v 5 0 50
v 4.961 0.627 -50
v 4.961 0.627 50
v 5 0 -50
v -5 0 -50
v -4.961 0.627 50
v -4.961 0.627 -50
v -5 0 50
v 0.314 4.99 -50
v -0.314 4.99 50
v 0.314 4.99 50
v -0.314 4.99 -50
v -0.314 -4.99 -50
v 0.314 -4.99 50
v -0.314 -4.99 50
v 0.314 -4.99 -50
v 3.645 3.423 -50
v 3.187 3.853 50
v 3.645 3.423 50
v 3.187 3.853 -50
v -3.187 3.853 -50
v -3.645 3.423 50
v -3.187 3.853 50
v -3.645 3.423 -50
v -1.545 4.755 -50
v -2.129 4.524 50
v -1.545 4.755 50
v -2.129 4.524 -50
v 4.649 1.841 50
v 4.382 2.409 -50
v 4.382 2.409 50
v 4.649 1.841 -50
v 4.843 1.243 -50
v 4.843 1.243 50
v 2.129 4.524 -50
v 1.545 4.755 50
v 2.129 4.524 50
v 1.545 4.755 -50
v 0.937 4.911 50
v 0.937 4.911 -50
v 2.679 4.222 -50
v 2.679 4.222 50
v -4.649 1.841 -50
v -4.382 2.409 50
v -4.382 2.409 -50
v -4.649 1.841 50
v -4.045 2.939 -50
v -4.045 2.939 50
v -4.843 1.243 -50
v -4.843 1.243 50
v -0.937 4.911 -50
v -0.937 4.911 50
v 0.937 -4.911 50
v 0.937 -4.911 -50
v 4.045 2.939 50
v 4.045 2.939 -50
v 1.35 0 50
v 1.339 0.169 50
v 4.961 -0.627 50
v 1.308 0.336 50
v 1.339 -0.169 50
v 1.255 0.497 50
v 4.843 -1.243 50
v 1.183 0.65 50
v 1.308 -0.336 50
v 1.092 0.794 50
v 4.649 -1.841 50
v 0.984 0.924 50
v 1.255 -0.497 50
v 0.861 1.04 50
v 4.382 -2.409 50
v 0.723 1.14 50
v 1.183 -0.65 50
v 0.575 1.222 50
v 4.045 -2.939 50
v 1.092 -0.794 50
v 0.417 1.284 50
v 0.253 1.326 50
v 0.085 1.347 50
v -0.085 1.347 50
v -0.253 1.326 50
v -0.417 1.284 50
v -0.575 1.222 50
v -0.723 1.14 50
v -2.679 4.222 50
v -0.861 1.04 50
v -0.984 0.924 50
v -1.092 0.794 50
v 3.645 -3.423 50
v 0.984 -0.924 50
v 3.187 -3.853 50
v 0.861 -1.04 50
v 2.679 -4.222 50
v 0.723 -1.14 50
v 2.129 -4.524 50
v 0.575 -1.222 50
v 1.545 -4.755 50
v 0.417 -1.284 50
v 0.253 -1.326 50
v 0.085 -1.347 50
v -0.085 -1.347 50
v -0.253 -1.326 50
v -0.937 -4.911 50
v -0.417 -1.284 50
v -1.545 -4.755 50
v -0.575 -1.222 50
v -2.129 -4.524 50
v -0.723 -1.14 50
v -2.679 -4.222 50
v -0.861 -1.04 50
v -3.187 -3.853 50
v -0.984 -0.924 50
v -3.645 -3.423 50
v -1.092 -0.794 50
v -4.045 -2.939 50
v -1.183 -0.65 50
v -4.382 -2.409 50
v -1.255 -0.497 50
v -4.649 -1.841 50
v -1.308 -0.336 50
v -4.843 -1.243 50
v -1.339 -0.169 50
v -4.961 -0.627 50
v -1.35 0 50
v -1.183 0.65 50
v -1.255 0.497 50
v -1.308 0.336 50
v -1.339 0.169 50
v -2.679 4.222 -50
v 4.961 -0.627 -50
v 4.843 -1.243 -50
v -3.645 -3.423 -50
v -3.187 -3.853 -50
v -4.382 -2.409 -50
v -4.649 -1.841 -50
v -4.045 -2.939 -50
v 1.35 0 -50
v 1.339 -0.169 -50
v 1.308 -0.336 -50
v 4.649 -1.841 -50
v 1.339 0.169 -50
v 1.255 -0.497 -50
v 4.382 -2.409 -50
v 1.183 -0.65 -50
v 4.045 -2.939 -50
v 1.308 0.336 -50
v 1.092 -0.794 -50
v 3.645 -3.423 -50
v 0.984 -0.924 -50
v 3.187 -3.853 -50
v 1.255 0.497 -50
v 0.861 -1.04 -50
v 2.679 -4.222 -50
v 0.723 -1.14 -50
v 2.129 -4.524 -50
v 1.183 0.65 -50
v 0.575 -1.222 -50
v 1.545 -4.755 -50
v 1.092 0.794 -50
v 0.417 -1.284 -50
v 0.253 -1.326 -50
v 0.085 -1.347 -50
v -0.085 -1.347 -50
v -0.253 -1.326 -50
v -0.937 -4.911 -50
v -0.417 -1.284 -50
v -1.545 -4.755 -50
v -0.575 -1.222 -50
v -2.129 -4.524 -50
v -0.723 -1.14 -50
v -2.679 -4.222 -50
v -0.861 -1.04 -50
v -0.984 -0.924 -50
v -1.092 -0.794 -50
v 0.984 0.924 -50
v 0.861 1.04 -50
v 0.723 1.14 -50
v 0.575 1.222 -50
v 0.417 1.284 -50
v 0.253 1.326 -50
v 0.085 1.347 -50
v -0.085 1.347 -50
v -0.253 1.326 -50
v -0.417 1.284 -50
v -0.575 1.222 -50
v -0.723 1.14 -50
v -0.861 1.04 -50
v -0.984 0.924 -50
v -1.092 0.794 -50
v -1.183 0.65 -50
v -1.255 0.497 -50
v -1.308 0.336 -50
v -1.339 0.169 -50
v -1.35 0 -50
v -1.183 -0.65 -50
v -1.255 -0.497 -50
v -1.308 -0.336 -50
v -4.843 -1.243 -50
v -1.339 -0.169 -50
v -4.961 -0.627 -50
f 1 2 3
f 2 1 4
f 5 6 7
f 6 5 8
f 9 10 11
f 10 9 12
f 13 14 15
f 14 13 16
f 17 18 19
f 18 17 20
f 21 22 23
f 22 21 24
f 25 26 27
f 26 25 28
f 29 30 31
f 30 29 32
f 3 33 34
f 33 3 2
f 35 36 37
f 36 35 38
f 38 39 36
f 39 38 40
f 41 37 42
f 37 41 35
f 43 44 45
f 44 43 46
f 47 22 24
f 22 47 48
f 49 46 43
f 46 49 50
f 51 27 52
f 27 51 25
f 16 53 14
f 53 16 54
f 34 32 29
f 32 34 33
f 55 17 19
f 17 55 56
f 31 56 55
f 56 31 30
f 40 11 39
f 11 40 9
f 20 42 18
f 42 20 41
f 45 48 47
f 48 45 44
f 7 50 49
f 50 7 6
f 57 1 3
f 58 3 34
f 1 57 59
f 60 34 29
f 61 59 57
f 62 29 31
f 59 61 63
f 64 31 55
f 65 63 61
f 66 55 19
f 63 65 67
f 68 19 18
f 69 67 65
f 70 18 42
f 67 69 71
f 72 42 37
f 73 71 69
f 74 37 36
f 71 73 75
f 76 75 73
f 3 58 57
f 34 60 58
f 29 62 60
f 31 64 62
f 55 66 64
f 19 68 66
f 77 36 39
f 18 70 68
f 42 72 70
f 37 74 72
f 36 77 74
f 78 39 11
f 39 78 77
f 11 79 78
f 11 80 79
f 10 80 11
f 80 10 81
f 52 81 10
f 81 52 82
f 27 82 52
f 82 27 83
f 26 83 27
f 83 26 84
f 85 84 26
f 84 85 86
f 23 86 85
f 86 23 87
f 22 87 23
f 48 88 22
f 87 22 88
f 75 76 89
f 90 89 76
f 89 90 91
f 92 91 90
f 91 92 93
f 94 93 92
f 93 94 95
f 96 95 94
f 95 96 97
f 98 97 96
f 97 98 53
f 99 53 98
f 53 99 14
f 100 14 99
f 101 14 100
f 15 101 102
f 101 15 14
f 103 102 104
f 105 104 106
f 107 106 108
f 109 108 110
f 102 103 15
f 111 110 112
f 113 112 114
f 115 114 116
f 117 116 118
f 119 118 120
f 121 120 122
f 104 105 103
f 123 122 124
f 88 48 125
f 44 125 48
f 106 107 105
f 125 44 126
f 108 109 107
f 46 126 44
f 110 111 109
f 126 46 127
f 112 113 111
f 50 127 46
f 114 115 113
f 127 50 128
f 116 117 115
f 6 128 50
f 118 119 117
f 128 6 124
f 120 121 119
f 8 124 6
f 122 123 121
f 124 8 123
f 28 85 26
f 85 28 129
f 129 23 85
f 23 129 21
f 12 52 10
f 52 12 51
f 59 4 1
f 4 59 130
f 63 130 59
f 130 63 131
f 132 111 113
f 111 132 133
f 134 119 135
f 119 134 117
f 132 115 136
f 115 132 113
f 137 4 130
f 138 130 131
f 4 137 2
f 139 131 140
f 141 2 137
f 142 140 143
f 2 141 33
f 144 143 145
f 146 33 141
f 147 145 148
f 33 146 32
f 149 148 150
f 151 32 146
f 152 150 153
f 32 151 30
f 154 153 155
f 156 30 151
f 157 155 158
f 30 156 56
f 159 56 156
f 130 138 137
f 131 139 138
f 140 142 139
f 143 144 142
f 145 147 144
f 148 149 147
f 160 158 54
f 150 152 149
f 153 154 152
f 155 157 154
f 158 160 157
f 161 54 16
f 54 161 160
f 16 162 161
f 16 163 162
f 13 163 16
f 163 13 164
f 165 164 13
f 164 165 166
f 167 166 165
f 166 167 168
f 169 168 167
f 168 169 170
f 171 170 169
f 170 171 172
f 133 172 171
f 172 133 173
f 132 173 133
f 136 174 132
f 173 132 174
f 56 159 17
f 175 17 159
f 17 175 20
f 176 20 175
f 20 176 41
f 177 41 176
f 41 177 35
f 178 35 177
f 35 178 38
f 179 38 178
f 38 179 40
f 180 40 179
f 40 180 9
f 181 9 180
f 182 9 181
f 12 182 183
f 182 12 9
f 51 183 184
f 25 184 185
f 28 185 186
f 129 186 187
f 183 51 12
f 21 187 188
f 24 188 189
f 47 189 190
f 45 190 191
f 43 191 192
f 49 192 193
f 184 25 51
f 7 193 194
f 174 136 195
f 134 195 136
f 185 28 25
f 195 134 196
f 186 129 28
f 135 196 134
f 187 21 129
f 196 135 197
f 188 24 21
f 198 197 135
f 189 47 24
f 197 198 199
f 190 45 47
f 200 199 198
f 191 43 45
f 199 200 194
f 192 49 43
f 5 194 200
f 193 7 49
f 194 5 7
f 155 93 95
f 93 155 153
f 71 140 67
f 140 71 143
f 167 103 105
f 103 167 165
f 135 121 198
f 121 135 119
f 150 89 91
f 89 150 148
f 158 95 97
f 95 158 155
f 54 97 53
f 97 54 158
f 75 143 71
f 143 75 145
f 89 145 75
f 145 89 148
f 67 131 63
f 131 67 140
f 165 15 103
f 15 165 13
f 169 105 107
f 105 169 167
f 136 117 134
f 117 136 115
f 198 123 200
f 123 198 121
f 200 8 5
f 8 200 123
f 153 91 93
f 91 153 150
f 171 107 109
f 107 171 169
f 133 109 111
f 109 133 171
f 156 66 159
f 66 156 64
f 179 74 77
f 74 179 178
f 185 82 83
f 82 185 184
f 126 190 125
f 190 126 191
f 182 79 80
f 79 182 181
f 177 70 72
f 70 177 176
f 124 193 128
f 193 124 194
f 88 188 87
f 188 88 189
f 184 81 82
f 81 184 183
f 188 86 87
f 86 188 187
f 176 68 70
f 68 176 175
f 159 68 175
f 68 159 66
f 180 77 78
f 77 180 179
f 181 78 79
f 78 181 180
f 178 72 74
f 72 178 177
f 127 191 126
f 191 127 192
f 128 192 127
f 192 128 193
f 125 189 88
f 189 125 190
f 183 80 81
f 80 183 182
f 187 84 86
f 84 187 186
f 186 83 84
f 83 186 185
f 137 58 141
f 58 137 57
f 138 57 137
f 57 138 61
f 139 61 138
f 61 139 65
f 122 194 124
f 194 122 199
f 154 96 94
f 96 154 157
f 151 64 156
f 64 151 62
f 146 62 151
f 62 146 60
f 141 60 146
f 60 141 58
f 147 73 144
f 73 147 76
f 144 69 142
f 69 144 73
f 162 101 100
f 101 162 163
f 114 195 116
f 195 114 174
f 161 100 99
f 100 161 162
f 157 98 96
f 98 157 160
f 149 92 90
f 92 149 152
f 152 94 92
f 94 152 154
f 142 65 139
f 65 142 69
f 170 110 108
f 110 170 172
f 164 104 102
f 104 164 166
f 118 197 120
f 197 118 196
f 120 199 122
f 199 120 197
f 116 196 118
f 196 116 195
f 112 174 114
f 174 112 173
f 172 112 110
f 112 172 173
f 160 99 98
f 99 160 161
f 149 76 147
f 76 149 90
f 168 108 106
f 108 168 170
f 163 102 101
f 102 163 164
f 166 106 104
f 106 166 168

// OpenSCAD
$fn = 50;


difference() {
	union() {
		translate(v = [0, 0, -50.0000000000]) {
			cylinder(h = 100, r = 5.0000000000);
		}
	}
	union() {
		translate(v = [0, 0, -100.0000000000]) {
			cylinder(h = 200, r = 1.3500000000);
		}
	}
}
